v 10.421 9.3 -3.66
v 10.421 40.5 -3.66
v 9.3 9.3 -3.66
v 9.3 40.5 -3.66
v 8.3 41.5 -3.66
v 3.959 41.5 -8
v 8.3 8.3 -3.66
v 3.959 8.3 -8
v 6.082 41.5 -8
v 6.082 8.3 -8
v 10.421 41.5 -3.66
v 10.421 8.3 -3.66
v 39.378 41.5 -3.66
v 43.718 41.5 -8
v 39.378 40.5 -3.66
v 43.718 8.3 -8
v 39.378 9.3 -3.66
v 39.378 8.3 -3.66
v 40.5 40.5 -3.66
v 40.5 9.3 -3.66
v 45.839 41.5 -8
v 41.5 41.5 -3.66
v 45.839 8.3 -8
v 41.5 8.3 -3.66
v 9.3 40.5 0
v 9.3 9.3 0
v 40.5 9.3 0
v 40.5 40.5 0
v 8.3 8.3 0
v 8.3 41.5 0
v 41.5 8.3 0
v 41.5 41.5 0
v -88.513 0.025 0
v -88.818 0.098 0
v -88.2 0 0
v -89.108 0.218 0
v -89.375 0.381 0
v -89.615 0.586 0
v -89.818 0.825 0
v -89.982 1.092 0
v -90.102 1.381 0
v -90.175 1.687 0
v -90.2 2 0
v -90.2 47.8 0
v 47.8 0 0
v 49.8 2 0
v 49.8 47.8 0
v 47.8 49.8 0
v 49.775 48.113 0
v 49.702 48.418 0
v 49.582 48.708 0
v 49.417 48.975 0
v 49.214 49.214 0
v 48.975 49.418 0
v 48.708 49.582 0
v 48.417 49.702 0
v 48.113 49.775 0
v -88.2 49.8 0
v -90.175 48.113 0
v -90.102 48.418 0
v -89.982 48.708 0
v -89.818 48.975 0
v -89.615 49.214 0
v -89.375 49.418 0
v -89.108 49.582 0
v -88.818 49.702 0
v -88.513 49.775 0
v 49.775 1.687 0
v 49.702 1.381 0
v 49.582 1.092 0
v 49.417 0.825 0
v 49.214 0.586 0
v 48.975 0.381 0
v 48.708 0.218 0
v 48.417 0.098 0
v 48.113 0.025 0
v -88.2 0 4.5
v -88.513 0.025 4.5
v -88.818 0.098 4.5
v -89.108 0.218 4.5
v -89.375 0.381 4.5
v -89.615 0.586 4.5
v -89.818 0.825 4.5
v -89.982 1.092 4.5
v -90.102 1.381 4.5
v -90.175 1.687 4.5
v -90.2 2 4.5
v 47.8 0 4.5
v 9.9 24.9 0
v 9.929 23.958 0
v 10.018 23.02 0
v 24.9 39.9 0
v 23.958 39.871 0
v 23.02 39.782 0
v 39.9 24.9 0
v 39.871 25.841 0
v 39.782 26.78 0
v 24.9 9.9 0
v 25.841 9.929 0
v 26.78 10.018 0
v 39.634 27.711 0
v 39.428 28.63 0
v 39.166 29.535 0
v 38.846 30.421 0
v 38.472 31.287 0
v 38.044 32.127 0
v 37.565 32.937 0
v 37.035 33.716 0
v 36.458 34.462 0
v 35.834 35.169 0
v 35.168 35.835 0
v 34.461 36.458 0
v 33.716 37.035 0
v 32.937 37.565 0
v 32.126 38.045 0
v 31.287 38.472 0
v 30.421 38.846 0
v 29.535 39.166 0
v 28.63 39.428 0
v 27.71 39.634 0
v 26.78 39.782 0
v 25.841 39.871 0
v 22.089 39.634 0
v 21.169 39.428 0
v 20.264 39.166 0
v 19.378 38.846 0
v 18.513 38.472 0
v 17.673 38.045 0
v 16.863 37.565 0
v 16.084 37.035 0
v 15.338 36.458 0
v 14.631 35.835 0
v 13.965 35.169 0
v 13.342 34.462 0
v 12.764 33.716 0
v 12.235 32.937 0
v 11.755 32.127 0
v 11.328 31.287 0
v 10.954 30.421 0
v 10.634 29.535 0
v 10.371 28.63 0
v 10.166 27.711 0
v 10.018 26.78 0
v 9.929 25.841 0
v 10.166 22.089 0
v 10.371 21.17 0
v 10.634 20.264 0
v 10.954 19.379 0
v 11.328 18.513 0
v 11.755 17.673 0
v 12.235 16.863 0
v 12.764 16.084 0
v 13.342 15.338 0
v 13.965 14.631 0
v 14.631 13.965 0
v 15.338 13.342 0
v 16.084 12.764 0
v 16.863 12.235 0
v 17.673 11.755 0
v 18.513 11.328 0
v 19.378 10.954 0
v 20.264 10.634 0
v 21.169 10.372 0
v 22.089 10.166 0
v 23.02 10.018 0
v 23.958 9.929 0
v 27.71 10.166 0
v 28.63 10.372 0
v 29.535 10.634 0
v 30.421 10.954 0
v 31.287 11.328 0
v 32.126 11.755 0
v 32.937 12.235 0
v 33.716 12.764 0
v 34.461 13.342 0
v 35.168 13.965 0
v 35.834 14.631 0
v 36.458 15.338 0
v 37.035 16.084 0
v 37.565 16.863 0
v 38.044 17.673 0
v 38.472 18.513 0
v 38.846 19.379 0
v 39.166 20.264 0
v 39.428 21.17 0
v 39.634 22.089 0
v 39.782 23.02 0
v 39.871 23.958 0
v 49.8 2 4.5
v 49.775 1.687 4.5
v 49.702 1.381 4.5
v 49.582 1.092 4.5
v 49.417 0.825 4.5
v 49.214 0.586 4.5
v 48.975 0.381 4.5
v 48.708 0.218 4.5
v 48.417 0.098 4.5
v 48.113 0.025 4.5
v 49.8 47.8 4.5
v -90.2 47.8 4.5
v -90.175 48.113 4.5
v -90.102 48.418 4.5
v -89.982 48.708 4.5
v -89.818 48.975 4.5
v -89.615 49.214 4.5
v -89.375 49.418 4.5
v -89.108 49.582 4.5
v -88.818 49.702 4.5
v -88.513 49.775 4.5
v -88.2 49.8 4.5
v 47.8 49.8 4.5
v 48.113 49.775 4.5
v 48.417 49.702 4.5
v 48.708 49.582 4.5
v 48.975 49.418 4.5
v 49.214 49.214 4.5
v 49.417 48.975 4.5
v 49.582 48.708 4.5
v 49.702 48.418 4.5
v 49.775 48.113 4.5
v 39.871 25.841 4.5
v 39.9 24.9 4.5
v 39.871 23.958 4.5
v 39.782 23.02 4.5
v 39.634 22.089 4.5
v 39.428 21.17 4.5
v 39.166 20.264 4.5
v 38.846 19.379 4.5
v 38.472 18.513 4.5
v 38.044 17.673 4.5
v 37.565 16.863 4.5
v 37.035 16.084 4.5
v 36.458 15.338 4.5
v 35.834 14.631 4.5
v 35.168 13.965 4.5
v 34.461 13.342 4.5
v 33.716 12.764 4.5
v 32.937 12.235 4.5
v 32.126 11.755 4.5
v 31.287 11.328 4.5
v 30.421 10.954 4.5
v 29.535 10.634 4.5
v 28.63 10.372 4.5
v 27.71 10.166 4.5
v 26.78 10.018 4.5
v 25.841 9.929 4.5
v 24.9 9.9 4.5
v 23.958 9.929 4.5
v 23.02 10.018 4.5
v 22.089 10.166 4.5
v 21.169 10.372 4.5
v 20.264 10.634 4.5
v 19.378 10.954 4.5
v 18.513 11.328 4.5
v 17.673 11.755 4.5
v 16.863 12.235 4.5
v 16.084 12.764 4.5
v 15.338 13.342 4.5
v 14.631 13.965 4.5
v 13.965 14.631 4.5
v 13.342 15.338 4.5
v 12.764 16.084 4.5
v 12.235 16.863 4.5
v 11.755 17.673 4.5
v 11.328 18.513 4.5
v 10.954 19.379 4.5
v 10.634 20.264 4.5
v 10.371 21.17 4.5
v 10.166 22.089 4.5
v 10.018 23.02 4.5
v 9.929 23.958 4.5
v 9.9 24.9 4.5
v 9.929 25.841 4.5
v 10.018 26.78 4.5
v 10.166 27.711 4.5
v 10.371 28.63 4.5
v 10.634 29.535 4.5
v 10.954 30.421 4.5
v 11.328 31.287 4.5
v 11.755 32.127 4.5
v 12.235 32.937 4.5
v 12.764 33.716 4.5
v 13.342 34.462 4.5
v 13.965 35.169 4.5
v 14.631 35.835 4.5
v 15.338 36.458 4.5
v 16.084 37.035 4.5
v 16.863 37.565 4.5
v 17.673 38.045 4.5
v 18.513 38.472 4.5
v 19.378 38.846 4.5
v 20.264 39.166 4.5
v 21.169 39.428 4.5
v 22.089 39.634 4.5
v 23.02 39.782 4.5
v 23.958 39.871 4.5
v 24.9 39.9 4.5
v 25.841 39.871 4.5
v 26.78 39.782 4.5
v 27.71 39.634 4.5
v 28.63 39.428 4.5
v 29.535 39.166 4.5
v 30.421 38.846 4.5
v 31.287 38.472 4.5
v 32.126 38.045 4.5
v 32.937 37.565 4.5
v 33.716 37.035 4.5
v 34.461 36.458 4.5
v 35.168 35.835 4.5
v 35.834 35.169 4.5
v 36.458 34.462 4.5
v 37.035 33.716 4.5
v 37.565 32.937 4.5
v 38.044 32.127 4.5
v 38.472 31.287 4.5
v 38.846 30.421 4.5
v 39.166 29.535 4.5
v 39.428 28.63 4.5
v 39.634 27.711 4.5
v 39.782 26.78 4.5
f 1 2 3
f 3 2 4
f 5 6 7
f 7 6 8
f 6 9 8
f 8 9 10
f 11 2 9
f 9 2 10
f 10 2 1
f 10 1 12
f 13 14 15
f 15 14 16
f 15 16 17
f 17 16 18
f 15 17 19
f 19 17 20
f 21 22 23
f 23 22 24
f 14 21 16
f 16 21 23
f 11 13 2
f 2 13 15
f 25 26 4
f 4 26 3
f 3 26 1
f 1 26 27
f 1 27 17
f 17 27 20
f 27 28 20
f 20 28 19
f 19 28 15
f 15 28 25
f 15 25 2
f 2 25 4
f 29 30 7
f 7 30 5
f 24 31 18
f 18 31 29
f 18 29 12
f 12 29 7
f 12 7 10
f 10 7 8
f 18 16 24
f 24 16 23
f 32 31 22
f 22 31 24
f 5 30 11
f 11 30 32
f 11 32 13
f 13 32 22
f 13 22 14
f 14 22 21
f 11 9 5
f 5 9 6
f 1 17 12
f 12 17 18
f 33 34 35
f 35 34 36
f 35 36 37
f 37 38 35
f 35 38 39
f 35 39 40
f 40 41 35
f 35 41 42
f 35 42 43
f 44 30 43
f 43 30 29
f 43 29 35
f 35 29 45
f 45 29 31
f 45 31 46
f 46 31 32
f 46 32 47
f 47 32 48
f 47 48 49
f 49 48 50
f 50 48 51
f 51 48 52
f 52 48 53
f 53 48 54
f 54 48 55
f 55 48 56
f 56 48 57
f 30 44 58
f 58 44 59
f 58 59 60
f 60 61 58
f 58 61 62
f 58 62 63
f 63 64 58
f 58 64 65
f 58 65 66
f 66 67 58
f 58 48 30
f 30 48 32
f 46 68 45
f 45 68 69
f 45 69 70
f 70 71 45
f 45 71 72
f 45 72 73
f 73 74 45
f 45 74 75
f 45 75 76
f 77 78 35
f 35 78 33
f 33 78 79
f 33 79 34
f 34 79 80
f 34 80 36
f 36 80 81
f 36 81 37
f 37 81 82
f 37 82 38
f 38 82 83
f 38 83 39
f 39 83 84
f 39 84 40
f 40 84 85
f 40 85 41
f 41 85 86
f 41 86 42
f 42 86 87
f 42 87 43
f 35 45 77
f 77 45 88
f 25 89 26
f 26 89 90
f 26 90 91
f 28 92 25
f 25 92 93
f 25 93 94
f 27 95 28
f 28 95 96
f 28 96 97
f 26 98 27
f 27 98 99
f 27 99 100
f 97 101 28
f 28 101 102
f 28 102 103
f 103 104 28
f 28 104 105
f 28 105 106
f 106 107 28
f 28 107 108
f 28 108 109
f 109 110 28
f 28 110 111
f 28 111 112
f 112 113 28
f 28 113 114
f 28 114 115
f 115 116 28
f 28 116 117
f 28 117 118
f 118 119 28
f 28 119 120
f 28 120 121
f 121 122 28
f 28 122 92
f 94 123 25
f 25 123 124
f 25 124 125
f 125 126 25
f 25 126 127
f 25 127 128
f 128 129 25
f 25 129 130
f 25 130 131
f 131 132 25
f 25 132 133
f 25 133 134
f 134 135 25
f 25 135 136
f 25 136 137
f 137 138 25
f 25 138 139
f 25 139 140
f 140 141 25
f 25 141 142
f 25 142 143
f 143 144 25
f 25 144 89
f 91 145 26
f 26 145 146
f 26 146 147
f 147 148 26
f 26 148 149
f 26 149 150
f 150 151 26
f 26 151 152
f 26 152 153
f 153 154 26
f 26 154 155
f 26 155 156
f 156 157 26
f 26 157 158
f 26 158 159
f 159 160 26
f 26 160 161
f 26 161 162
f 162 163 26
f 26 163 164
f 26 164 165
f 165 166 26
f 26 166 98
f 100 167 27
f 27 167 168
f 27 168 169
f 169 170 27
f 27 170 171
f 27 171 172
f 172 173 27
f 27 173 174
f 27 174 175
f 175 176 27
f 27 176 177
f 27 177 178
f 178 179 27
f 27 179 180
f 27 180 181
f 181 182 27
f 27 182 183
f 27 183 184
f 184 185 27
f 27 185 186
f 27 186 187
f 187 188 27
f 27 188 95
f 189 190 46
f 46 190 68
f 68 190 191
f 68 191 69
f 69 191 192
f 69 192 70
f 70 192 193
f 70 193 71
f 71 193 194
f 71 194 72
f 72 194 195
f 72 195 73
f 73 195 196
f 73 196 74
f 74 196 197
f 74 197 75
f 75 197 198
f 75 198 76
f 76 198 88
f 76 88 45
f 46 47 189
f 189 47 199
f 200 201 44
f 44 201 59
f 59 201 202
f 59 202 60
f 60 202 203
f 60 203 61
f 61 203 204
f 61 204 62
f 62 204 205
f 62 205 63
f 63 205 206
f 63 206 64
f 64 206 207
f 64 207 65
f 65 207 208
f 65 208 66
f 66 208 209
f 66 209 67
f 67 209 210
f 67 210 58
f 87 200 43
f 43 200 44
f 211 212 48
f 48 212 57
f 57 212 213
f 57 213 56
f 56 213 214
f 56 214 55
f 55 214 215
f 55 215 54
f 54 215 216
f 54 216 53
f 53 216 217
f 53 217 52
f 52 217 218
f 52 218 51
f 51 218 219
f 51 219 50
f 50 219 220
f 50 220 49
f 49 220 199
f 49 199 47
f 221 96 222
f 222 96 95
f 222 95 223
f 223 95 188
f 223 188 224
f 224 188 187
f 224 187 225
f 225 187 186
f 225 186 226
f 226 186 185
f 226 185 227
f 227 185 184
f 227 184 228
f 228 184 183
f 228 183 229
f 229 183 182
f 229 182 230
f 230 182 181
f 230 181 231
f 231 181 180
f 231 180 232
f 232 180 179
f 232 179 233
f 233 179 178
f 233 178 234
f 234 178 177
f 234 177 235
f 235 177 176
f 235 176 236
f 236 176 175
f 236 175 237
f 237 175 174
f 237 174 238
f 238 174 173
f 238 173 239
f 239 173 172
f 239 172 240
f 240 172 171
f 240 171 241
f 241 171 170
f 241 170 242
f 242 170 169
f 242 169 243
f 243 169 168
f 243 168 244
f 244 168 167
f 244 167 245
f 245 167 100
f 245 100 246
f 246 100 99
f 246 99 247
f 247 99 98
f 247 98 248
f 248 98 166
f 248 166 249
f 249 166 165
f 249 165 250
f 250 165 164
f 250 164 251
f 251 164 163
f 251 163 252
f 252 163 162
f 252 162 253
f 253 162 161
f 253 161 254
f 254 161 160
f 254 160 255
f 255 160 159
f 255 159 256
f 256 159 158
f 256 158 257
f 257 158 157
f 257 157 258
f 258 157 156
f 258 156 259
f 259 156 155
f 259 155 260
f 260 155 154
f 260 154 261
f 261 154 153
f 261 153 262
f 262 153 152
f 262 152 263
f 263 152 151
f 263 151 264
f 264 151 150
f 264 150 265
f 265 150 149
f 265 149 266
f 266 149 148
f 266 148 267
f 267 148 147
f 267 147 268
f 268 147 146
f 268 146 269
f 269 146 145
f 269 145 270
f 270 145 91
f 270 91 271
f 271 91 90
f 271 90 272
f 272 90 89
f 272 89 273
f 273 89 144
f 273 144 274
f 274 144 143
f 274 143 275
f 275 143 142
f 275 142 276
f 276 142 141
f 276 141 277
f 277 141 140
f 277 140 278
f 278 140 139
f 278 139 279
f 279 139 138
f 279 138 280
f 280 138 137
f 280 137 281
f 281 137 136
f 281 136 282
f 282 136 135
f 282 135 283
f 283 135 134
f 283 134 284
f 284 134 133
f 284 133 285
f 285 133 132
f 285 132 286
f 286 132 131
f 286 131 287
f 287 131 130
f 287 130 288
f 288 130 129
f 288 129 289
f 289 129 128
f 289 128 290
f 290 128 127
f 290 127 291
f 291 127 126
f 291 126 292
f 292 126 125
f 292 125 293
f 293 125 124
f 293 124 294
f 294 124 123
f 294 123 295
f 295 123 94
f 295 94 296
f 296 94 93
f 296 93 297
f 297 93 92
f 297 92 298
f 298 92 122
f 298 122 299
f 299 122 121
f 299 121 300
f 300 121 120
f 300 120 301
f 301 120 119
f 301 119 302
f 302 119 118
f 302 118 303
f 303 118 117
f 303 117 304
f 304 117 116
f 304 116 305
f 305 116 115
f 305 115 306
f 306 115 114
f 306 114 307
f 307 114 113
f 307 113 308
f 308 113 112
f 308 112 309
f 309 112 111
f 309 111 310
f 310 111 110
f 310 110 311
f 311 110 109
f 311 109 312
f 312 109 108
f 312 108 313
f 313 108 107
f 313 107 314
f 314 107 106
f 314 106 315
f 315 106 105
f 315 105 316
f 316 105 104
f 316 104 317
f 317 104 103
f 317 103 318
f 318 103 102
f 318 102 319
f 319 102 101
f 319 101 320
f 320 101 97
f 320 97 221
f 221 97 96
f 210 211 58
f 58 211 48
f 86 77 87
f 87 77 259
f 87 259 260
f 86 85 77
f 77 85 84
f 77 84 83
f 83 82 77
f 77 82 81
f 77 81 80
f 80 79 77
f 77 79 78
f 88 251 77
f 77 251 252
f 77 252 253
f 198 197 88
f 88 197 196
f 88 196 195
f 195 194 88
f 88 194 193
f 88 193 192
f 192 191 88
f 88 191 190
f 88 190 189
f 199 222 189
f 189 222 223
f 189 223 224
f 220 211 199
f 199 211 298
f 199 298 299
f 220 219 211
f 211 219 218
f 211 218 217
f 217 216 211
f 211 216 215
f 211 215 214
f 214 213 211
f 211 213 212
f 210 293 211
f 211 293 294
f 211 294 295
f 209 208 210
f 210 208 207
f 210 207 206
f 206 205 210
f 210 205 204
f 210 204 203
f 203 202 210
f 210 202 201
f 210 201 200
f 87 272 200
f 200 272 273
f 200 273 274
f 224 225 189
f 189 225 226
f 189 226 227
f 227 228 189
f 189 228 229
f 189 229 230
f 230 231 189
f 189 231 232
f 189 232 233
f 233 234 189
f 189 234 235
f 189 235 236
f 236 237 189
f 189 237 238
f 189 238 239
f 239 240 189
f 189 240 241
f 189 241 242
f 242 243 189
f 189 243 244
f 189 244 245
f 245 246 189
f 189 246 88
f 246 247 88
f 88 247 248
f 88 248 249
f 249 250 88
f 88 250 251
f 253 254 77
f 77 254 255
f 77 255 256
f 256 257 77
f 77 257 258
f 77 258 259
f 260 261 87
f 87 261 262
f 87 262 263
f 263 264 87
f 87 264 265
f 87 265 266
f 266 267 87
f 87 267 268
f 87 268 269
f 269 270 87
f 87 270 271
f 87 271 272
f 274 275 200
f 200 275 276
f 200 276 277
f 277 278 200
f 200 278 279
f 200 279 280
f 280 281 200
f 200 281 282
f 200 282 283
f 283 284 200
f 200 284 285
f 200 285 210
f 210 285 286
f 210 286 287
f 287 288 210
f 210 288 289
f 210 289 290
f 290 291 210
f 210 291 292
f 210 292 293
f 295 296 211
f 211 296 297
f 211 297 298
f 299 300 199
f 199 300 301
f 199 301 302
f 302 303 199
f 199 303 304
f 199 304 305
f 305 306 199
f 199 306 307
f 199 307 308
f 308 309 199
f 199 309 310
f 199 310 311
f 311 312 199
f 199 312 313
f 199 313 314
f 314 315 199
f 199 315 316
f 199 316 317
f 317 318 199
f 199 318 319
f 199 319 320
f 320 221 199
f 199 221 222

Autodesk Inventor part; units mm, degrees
ref_plane "YZ Plane" through (0, 0, 0) normal (1, 0, 0) x (0, 1, 0)
ref_plane "XZ Plane" through (0, 0, 0) normal (0, 1, 0) x (-1, 0, 0)
ref_plane "XY Plane" through (0, 0, 0) normal (0, 0, 1) x (1, 0, 0)
sketch "Sketch1" plane through (0, 0, 0) normal (0, 0, 1) x (1, 0, 0)
  circle A0 centre (44.9, 4.9) radius 1.45 construction
  circle A1 centre (4.9, 4.9) radius 1.45 construction
  line L0 (2, 2) -> (2, 41.8) construction
  line L1 (47.8, 2) -> (2, 2) construction
  line L2 (47.8, 41.8) -> (47.8, 2) construction
  line L3 (41.8, 41.8) -> (47.8, 41.8) construction
  line L4 (41.8, 8) -> (41.8, 41.8) construction
  line L5 (8, 8) -> (41.8, 8) construction
  line L6 (8, 8) -> (8, 41.8) construction
  line L7 (2, 41.8) -> (8, 41.8) construction
  circle A2 centre (44.9, 44.9) radius 1.4 construction
  circle A3 centre (4.9, 44.9) radius 1.4 construction
  line L8 (2, 47.8) -> (47.8, 47.8) construction
  line L9 (2, 41.8) -> (2, 47.8) construction
  line L10 (47.8, 41.8) -> (2, 41.8) construction
  line L11 (47.8, 41.8) -> (47.8, 47.8) construction
  circle A4 centre (25.6838, 25.4066) radius 13.6 construction
  line L12 (44.1319, 49.8) -> (5.6681, 49.8) construction
  arc A5 (49.8, 47.8) -> (47.8, 49.8) centre (47.8, 47.8) ccw construction
  line L13 (49.8, 41.8) -> (49.8, 47.8) construction
  arc A6 (2, 49.8) -> (0, 47.8) centre (2, 47.8) ccw construction
  arc A7 (0, 2) -> (2, 0) centre (2, 2) ccw construction
  arc A8 (47.8, 0) -> (49.8, 2) centre (47.8, 2) ccw construction
  line L14 (49.8, 0) -> (-90.2, 0)
  line L15 (-90.2, 0) -> (-90.2, 49.8)
  line L16 (-90.2, 49.8) -> (49.8, 49.8)
  line L17 (49.8, 49.8) -> (49.8, 0)
  line L18 (8, 3.7577) -> (41.8, 3.7577) construction
  line L19 (41.8, 0) -> (41.8, 3.7577) construction
  line L20 (8, 0) -> (41.8, 0) construction
  line L21 (8, 0) -> (8, 3.7577) construction
  line L22 (46.1838, 8) -> (46.1838, 41.8) construction
  line L23 (49.8, 41.8) -> (46.1838, 41.8) construction
  line L24 (49.8, 8) -> (49.8, 41.8) construction
  line L25 (46.1838, 8) -> (49.8, 8) construction
  line L26 (3.6162, 41.8) -> (3.6162, 8) construction
  line L27 (0, 8) -> (3.6162, 8) construction
  line L28 (0, 8) -> (0, 41.8) construction
  line L29 (3.6162, 41.8) -> (0, 41.8) construction
  circle A9 centre (24.9, 24.9) radius 15
  arc A10 (42.3945, 24.4616) -> (22.4616, 42.2293) centre (24.9, 24.9) ccw construction
  arc A11 (22.5619, 16.1033) -> (42.3945, 24.4616) centre (29.0002, 28.5351) ccw construction
  line L30 (22.5619, 16.1033) -> (22.3031, 15.1374) construction
  arc A12 (22.3031, 15.1374) -> (41.5232, 19.4302) centre (29.3361, 28.8218) ccw construction
  arc A13 (15.3425, 10.2404) -> (41.5232, 19.4302) centre (24.9, 24.9) ccw construction
  arc A14 (18.2047, 31.6263) -> (15.3425, 10.2404) centre (25.6173, 19.7498) ccw construction
  line L31 (18.2047, 31.6263) -> (17.4976, 32.3335) construction
  arc A15 (17.4976, 32.3335) -> (11.1478, 14.0775) centre (25.6302, 19.2725) ccw construction
  arc A16 (16.2809, 40.1303) -> (11.1478, 14.0775) centre (24.9, 24.9) ccw construction
  arc A17 (34.0602, 27.4798) -> (16.2809, 40.1303) centre (20.0844, 26.6568) ccw construction
  line L32 (34.0602, 27.4798) -> (35.0261, 27.7386) construction
  arc A18 (35.0261, 27.7386) -> (22.4616, 42.2293) centre (19.6533, 27.1018) ccw construction
  line L33 (3.6577, 41.7) -> (8.1, 46.1423) construction
  line L34 (0, 41.7) -> (3.6577, 41.7) construction
  line L35 (0, 8.1) -> (0, 41.7) construction
  line L36 (3.6577, 8.1) -> (0, 8.1) construction
  line L37 (8.1, 3.6577) -> (3.6577, 8.1) construction
  line L38 (8.1, 0) -> (8.1, 3.6577) construction
  line L39 (41.7, 0) -> (8.1, 0) construction
  line L40 (41.7, 3.6577) -> (41.7, 0) construction
  line L41 (46.1423, 8.1) -> (41.7, 3.6577) construction
  line L42 (49.8, 8.1) -> (46.1423, 8.1) construction
  line L43 (49.8, 41.7) -> (49.8, 8.1) construction
  line L44 (46.1423, 41.7) -> (49.8, 41.7) construction
  line L45 (41.7, 46.1423) -> (46.1423, 41.7) construction
  line L46 (41.7, 49.8) -> (41.7, 46.1423) construction
  line L47 (8.1, 49.8) -> (41.7, 49.8) construction
  line L48 (8.1, 46.1423) -> (8.1, 49.8) construction
  circle A19 centre (24.9, 24.9) radius 16.9 construction
  point P0 (0, 0)
  dimension "d0" = 30
  dimension "d4" = 140
extrude "Extrusion1" add sketch "Sketch1" along normal blind 4.5
fillet "Fillet1" radius 2 4 edges at (49.8, 49.8, 2.25) (-90.2, 49.8, 2.25) (49.8, 0, 2.25) (-90.2, 0, 2.25)
sketch "Sketch2" plane through (0, 0, 0) normal (0, 0, -1) x (-1, 0, 0)
  line L0 (-41.8, 8) -> (-41.8, 41.8) construction
  line L1 (-8, 8) -> (-41.8, 8) construction
  line L2 (-8, 8) -> (-8, 41.8) construction
  line L3 (-47.8, 41.8) -> (-2, 41.8) construction
  circle A0 centre (-24.9, 24.9) radius 15 construction
  arc A1 (88.2, 0) -> (90.2, 2) centre (88.2, 2) ccw construction
  line L4 (90.2, 2) -> (90.2, 47.8) construction
  arc A2 (90.2, 47.8) -> (88.2, 49.8) centre (88.2, 47.8) ccw construction
  line L5 (88.2, 49.8) -> (-47.8, 49.8) construction
  arc A3 (-47.8, 49.8) -> (-49.8, 47.8) centre (-47.8, 47.8) ccw construction
  line L6 (-49.8, 47.8) -> (-49.8, 2) construction
  arc A4 (-49.8, 2) -> (-47.8, 0) centre (-47.8, 2) ccw construction
  line L7 (-47.8, 0) -> (88.2, 0) construction
  line L8 (-41.5, 41.5) -> (-8.3, 41.5)
  line L9 (-8.3, 41.5) -> (-8.3, 8.3)
  line L10 (-8.3, 8.3) -> (-41.5, 8.3)
  line L11 (-41.5, 8.3) -> (-41.5, 41.5)
  line L12 (-9.3, 40.5) -> (-40.5, 40.5)
  line L13 (-40.5, 40.5) -> (-40.5, 9.3)
  line L14 (-40.5, 9.3) -> (-9.3, 9.3)
  line L15 (-9.3, 9.3) -> (-9.3, 40.5)
  point P0 (0, 0)
  dimension "d6" = 0.3
  dimension "d7" = 0.3
  dimension "d8" = 0.3
  dimension "d9" = 0.3
  dimension "d10" = 1
extrude "Extrusion2" add sketch "Sketch2" along normal blind 3.66
sketch "Sketch3" plane through (8.3, 8.3, 0) normal (0, -1, 0) x (1, 0, 0)
  line L0 (0, 0) -> (33.2, 0) construction
  line L1 (0, 0) -> (0, -3.66) construction
  line L2 (33.2, -3.66) -> (0, -3.66) construction
  line L3 (33.2, 0) -> (33.2, -3.66) construction
  line L4 (33.5, -3.7577) -> (33.5, -8) construction
  line L5 (-0.3, -8) -> (33.5, -8) construction
  line L6 (-0.3, -3.7577) -> (-0.3, -8) construction
  line L7 (33.5, -3.7577) -> (-0.3, -3.7577) construction
  line L8 (33.5, 0) -> (33.5, -3.6162) construction
  line L9 (-0.3, -3.6162) -> (-0.3, 0) construction
  line L10 (33.2, 0) -> (33.2, -3.66) construction
  line L11 (33.2, 0) -> (33.2, -3.66) construction
  line L12 (33.5, -8) -> (33.5, -3.7577) construction
  line L13 (33.5, -3.7577) -> (-0.3, -3.7577) construction
  line L14 (-0.3, -3.7577) -> (-0.3, -8) construction
  line L15 (-0.3, -8) -> (-4.6838, -8) construction
  line L16 (-2.886, -6.2022) -> (-4.6838, -8) construction
  arc A0 (-2.886, -6.2022) -> (-2.0978, -5.414) centre (-3.4, -4.9) ccw construction
  line L17 (-0.3, -3.6162) -> (-2.0978, -5.414) construction
  line L18 (-0.3, -3.6162) -> (-0.3, 0) construction
  line L19 (-0.3, 0) -> (33.5, 0) construction
  line L20 (33.5, 0) -> (33.5, -3.6162) construction
  line L21 (35.2978, -5.414) -> (33.5, -3.6162) construction
  arc A1 (35.2978, -5.414) -> (36.086, -6.2022) centre (36.6, -4.9) ccw construction
  line L22 (37.8838, -8) -> (36.086, -6.2022) construction
  line L23 (37.8838, -8) -> (33.5, -8) construction
  line L24 (0, -3.66) -> (33.2, -3.66) projected
  line L25 (0, -3.66) -> (-4.34, -8)
  line L26 (-4.34, -8) -> (-2.2187, -8)
  line L27 (-2.2187, -8) -> (2.1213, -3.66)
  line L28 (16.6, -3.7577) -> (16.6, -8) construction
  line L29 (2.1213, -3.66) -> (0, -3.66)
  line L30 (1, -3.66) -> (32.2, -3.66) projected
  line L31 (33.5, -3.7577) -> (33.5, -8) construction
  line L32 (33.5, -3.7577) -> (33.5, -8) construction
  line L33 (33.5, -8) -> (37.8838, -8) construction
  line L34 (36.086, -6.2022) -> (37.8838, -8) construction
  arc A2 (35.2978, -5.414) -> (36.086, -6.2022) centre (36.6, -4.9) ccw construction
  line L35 (33.5, -3.6162) -> (35.2978, -5.414) construction
  line L36 (33.2, -3.66) -> (37.54, -8)
  line L37 (37.54, -8) -> (35.4187, -8)
  line L38 (35.4187, -8) -> (31.0787, -3.66)
  line L39 (31.0787, -3.66) -> (33.2, -3.66)
  point P0 (-8.3, 0)
  point P1 (32.2, -3.66)
  dimension "d13" = 1.5
extrude "Extrusion3" add sketch "Sketch3" against normal up to surface (33.2 mm away)
equation "\"d7\" = d6"
equation "\"d8\" = d6"
equation "\"d9\" = d6"
properties part number "30_Smartphone_Holder_v3"
